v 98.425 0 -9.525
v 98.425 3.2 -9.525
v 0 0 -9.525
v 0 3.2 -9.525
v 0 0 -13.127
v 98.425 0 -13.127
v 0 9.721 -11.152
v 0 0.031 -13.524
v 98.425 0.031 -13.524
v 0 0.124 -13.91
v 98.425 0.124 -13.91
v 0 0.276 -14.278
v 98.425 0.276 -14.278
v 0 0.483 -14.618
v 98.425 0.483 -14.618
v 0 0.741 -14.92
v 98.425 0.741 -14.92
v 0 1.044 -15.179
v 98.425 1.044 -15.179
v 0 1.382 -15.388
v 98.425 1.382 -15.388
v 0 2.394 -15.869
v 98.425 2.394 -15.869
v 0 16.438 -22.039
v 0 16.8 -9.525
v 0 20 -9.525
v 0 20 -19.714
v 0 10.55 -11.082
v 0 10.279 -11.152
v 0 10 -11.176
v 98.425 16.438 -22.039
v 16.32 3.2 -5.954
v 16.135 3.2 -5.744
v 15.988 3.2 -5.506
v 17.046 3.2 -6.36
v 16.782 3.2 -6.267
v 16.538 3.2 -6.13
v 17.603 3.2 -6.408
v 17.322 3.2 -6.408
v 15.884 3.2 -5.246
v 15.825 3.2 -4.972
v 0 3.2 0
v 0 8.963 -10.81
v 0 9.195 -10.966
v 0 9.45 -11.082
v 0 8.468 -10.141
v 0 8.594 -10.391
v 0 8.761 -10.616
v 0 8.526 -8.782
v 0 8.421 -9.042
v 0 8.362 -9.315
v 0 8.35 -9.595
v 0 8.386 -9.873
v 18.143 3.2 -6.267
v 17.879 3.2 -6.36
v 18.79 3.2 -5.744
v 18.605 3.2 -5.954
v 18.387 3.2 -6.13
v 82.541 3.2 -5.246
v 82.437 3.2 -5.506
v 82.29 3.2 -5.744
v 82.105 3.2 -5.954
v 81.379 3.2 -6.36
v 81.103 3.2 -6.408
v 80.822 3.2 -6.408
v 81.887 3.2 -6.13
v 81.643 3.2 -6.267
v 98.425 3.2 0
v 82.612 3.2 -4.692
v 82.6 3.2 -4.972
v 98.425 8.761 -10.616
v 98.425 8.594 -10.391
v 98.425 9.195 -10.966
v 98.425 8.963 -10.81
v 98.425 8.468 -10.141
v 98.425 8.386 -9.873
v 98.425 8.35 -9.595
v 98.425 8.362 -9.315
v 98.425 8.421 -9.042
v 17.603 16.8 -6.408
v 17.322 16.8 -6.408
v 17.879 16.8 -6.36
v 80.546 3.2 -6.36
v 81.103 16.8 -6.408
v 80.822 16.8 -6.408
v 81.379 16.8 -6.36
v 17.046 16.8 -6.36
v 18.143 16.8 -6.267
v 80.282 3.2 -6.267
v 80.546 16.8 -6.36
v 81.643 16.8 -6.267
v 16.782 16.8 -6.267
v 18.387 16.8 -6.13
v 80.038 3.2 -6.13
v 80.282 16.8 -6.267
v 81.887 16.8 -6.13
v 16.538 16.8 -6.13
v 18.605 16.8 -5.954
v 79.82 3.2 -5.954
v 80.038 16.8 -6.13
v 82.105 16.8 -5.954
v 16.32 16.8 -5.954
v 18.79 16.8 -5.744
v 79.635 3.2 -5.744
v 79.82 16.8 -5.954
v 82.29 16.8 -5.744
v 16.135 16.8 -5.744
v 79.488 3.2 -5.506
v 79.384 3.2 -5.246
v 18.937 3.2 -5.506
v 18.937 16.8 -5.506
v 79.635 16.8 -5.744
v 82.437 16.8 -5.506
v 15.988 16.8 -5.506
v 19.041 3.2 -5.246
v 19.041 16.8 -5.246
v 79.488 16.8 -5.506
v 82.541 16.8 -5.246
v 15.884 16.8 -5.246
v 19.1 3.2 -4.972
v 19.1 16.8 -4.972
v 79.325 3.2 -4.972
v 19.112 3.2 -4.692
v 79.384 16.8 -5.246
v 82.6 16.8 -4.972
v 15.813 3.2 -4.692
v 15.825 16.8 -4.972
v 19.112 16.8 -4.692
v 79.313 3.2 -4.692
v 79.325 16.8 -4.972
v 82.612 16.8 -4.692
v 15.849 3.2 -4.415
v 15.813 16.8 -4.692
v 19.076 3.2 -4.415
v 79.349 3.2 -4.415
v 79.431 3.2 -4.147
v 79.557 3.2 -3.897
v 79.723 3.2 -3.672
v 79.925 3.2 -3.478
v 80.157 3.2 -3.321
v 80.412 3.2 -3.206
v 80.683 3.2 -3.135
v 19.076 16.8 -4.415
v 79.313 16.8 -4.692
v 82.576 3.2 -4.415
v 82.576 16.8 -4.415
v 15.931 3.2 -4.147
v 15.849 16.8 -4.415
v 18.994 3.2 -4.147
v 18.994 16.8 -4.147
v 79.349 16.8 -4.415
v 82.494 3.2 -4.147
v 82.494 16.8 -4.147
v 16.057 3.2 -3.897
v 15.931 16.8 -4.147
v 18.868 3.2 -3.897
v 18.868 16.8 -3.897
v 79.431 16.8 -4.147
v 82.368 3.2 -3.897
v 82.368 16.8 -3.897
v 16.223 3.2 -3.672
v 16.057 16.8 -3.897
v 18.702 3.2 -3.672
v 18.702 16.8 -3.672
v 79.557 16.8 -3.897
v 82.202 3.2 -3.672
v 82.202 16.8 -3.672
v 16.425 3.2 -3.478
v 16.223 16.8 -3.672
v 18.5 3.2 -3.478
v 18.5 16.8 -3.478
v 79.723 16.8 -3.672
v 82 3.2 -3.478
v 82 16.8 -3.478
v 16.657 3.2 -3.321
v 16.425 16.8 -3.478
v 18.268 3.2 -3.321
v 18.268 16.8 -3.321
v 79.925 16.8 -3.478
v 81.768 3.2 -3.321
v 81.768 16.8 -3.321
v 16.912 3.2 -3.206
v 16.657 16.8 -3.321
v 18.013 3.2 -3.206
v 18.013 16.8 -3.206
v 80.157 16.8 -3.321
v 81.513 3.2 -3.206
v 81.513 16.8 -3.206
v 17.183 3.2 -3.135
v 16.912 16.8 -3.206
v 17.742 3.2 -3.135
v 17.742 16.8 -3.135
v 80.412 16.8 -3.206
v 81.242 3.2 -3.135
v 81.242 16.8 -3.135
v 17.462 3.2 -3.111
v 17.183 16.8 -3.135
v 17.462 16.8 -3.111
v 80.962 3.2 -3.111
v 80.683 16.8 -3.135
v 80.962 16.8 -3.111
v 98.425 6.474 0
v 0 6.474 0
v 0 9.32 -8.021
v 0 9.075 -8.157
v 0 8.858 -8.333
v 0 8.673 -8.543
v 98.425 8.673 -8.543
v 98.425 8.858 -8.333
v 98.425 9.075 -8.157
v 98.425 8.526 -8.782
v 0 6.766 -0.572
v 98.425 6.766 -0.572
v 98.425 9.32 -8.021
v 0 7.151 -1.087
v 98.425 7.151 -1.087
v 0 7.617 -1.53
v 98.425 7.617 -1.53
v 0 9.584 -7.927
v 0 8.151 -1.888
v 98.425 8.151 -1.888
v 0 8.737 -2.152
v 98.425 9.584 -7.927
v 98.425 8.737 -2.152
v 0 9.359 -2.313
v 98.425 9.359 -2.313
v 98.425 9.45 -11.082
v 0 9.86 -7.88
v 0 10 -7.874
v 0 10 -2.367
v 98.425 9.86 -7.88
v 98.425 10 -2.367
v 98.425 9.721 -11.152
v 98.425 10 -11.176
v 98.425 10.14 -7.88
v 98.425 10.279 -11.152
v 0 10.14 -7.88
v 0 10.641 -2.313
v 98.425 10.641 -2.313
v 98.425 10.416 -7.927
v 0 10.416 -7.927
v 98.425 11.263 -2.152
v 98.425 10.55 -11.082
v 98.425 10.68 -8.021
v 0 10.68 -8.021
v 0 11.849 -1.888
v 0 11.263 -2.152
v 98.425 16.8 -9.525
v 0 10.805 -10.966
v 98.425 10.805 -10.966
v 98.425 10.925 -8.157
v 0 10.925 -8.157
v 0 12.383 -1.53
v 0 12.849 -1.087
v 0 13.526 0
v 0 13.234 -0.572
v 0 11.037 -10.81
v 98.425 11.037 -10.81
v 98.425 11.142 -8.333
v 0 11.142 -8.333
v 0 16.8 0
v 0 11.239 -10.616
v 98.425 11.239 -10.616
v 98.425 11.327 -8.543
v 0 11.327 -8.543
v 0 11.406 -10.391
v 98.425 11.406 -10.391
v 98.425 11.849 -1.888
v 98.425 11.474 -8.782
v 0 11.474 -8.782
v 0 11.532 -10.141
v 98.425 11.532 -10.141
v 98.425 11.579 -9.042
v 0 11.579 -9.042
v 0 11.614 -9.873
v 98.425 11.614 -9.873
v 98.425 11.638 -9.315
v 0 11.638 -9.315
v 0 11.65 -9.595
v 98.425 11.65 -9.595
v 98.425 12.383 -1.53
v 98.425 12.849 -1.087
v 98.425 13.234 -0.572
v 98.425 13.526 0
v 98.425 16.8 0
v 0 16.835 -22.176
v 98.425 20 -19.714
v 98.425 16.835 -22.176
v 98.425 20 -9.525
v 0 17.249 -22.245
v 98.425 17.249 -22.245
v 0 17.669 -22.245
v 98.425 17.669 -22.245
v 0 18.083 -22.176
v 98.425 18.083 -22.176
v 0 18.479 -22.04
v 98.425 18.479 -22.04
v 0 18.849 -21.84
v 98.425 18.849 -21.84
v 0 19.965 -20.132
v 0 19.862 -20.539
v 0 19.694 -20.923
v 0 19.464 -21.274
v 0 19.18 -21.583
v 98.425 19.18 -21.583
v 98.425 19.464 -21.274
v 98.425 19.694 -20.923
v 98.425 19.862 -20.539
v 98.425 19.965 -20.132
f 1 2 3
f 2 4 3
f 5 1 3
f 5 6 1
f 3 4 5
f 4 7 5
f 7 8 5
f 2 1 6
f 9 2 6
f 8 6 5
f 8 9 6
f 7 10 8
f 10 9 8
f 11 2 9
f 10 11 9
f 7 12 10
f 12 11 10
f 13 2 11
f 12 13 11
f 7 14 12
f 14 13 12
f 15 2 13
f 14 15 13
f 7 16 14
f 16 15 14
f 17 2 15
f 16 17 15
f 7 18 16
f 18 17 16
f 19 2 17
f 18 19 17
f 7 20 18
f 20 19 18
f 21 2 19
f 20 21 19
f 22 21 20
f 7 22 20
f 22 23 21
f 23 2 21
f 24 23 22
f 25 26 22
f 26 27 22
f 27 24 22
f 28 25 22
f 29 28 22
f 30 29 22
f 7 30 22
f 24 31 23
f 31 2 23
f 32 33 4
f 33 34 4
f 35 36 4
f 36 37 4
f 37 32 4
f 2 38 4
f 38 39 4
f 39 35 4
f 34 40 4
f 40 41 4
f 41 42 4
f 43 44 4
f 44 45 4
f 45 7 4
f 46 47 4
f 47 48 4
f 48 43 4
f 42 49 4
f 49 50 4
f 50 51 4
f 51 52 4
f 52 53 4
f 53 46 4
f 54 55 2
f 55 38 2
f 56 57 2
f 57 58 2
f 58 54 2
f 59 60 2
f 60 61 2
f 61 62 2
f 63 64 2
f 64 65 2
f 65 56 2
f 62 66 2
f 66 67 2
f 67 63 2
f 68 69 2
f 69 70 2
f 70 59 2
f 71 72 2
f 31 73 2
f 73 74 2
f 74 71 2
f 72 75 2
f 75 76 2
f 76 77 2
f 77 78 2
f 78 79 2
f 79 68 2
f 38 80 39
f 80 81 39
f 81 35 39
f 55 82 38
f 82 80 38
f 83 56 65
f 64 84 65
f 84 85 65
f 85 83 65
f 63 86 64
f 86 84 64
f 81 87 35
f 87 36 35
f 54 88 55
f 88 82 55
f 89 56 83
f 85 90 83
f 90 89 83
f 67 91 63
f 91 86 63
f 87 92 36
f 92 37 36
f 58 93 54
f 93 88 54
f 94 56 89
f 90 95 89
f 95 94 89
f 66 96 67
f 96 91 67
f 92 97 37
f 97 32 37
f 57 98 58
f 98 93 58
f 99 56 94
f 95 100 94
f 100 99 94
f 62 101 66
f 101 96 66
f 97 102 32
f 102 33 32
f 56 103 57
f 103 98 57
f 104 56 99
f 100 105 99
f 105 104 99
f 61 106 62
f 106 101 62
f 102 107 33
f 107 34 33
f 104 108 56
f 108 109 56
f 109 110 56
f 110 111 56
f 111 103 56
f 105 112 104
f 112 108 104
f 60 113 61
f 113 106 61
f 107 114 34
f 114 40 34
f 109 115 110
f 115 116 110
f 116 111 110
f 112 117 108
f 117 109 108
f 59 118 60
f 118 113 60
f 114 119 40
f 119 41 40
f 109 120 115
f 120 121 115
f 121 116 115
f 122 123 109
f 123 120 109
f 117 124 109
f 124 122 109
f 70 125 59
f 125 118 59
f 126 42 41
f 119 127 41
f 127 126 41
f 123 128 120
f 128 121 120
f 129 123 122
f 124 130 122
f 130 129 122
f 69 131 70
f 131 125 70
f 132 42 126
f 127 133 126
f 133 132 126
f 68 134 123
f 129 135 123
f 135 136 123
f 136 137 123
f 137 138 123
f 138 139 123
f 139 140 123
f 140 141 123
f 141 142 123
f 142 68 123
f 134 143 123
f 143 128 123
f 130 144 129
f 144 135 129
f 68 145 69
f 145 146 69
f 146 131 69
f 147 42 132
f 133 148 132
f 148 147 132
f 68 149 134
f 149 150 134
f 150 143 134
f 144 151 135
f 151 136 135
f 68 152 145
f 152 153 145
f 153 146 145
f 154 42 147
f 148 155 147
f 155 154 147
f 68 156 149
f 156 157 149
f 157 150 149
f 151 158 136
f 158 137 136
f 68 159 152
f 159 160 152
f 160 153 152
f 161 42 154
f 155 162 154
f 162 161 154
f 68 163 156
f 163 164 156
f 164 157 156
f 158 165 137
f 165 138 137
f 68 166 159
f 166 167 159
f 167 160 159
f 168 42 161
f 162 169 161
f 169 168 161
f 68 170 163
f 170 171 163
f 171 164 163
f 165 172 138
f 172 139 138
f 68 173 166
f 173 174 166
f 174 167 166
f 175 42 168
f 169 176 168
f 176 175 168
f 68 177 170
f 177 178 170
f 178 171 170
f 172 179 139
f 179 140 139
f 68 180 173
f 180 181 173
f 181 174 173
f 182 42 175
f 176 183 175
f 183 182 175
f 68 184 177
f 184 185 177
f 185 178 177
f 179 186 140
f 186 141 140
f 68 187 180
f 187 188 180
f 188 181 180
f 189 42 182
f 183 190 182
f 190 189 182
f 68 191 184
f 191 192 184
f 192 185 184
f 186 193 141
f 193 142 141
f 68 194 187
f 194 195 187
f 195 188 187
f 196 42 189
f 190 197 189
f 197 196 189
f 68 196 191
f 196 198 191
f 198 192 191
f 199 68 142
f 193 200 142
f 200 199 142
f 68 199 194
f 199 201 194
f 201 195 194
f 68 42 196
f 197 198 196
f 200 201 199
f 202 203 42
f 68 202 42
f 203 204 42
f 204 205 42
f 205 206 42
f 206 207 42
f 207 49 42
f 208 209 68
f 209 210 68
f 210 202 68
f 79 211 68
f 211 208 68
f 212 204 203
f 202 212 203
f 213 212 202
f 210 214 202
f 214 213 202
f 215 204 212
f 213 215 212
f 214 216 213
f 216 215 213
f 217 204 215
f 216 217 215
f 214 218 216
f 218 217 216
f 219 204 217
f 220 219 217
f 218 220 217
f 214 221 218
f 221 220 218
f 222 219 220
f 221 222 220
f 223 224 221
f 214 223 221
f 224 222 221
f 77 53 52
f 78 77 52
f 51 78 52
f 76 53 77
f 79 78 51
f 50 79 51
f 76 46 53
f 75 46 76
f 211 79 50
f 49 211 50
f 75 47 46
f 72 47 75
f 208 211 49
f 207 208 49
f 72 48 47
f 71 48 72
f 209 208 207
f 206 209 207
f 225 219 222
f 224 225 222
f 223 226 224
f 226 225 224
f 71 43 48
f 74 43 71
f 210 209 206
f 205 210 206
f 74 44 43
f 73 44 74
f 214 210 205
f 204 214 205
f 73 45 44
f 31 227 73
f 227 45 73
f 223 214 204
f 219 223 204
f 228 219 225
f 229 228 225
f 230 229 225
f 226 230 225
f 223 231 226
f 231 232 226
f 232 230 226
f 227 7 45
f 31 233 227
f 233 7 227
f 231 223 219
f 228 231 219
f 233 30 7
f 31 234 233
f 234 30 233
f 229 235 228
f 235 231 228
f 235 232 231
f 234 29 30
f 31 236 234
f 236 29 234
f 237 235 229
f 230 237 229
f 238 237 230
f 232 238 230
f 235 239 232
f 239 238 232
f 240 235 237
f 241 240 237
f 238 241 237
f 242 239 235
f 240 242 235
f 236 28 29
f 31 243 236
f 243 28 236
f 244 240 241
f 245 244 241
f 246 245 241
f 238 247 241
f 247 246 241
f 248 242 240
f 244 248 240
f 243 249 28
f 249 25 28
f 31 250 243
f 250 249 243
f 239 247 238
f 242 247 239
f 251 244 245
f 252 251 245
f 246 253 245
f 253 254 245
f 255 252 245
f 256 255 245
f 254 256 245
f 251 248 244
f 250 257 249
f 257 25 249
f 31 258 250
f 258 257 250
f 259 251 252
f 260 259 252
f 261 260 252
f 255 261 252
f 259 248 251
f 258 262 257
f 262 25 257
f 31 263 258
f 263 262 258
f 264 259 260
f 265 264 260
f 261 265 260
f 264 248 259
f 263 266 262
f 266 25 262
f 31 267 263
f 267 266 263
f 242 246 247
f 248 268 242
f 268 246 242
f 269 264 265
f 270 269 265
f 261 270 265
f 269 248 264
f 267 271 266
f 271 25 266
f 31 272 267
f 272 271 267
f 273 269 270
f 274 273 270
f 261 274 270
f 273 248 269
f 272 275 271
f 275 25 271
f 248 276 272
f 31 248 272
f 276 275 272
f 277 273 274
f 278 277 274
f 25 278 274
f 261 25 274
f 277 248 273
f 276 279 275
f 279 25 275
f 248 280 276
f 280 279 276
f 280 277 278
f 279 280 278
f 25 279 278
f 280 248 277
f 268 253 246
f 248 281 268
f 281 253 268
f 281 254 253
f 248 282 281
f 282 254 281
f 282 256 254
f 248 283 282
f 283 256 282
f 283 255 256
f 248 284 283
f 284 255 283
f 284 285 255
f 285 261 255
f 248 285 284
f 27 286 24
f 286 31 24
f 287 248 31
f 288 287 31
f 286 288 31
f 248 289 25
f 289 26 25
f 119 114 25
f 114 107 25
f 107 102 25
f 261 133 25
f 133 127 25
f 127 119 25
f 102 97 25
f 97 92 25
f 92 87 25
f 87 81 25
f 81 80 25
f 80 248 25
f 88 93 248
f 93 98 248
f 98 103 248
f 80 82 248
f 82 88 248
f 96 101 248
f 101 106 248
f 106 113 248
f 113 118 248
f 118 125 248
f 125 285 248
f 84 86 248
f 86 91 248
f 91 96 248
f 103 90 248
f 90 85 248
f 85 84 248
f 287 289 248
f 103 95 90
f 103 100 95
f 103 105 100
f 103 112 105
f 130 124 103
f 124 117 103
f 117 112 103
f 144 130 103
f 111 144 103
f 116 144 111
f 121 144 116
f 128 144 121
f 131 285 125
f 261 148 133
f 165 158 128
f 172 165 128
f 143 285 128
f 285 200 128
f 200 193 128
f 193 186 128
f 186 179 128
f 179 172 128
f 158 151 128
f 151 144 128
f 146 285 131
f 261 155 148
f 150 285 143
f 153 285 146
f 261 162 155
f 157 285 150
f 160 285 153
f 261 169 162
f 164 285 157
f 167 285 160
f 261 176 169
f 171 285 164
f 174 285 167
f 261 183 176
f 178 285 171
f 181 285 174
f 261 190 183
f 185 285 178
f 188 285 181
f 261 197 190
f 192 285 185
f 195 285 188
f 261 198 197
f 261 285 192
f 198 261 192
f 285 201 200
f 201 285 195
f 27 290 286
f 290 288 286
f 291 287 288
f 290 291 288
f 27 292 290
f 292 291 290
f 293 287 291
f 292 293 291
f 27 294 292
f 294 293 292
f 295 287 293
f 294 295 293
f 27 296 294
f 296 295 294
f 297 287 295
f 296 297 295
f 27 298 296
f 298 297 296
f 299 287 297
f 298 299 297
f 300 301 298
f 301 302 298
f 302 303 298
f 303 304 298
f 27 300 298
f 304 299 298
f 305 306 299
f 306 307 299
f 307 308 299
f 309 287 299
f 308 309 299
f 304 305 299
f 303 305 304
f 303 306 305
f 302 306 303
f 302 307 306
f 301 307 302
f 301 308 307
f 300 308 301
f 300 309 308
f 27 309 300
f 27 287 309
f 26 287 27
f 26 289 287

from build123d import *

# Parameters (mm, degrees)
BOSS_EXTRUDE1_DEPTH = 98.425
CUT_EXTRUDE2_DEPTH  = 98.425
SKETCH5_R           = 1.651
CUT_EXTRUDE3_DEPTH  = 13.5992
FILLET1_R           = 2.54
SKETCH6_R           = 1.651
CUT_EXTRUDE4_DEPTH  = 98.425


with BuildPart() as part:
    # Sketch1 → Boss-Extrude1 (new body)
    with BuildSketch(Plane(origin=(0, 0, 0), x_dir=(0, 0, -1), z_dir=(1, 0, 0))):
        with BuildLine():
            Line((0, 16.7996), (0, 3.2004))
            Line((0, 3.2004), (9.525, 3.2004))
            Line((9.525, 3.2004), (9.525, 0))
            Line((9.525, 0), (14.605, 0))
            ThreePointArc((14.605, 0), (15.279774052, 1.174548121), (15.868724182, 2.394392806))
            Line((15.868724182, 2.394392806), (23.603930172, 20))
            Line((23.603930172, 20), (9.525, 20))
            Line((9.525, 20), (9.525, 16.7996))
            Line((9.525, 16.7996), (0, 16.7996))
        make_face()
    extrude(amount=BOSS_EXTRUDE1_DEPTH)

    # Sketch4 → Cut-Extrude2 (cut)
    with BuildSketch(Plane.ZY):
        with BuildLine():
            Line((0, 13.526281186), (0, 6.473718814))
            ThreePointArc((0, 6.473718814), (-2.36728, 10), (0, 13.526281186))
        make_face()
    extrude(amount=-CUT_EXTRUDE2_DEPTH, mode=Mode.SUBTRACT)

    # Sketch5 → Cut-Extrude3 (cut)
    with BuildSketch(Plane(origin=(0, 16.7996, 0), x_dir=(1, 0, 0), z_dir=(0, 1, 0))):
        with Locations((17.4625, 4.7625)):
            Circle(SKETCH5_R)
        with Locations((80.9625, 4.7625)):
            Circle(SKETCH5_R)
    extrude(amount=-CUT_EXTRUDE3_DEPTH, mode=Mode.SUBTRACT)

    # Fillet1
    fillet1_edges = [part.edges().sort_by_distance(p)[0] for p in [
        (49.2125, 20, -23.603930172),
        (49.2125, 0, -14.605),
    ]]
    fillet(fillet1_edges, radius=FILLET1_R)

    # Sketch6 → Cut-Extrude4 (cut)
    with BuildSketch(Plane(origin=(98.425, 0, 0), x_dir=(0, 0, -1), z_dir=(1, 0, 0))):
        with Locations((9.525, 10)):
            Circle(SKETCH6_R)
    extrude(amount=-CUT_EXTRUDE4_DEPTH, mode=Mode.SUBTRACT)


solid = part.part
